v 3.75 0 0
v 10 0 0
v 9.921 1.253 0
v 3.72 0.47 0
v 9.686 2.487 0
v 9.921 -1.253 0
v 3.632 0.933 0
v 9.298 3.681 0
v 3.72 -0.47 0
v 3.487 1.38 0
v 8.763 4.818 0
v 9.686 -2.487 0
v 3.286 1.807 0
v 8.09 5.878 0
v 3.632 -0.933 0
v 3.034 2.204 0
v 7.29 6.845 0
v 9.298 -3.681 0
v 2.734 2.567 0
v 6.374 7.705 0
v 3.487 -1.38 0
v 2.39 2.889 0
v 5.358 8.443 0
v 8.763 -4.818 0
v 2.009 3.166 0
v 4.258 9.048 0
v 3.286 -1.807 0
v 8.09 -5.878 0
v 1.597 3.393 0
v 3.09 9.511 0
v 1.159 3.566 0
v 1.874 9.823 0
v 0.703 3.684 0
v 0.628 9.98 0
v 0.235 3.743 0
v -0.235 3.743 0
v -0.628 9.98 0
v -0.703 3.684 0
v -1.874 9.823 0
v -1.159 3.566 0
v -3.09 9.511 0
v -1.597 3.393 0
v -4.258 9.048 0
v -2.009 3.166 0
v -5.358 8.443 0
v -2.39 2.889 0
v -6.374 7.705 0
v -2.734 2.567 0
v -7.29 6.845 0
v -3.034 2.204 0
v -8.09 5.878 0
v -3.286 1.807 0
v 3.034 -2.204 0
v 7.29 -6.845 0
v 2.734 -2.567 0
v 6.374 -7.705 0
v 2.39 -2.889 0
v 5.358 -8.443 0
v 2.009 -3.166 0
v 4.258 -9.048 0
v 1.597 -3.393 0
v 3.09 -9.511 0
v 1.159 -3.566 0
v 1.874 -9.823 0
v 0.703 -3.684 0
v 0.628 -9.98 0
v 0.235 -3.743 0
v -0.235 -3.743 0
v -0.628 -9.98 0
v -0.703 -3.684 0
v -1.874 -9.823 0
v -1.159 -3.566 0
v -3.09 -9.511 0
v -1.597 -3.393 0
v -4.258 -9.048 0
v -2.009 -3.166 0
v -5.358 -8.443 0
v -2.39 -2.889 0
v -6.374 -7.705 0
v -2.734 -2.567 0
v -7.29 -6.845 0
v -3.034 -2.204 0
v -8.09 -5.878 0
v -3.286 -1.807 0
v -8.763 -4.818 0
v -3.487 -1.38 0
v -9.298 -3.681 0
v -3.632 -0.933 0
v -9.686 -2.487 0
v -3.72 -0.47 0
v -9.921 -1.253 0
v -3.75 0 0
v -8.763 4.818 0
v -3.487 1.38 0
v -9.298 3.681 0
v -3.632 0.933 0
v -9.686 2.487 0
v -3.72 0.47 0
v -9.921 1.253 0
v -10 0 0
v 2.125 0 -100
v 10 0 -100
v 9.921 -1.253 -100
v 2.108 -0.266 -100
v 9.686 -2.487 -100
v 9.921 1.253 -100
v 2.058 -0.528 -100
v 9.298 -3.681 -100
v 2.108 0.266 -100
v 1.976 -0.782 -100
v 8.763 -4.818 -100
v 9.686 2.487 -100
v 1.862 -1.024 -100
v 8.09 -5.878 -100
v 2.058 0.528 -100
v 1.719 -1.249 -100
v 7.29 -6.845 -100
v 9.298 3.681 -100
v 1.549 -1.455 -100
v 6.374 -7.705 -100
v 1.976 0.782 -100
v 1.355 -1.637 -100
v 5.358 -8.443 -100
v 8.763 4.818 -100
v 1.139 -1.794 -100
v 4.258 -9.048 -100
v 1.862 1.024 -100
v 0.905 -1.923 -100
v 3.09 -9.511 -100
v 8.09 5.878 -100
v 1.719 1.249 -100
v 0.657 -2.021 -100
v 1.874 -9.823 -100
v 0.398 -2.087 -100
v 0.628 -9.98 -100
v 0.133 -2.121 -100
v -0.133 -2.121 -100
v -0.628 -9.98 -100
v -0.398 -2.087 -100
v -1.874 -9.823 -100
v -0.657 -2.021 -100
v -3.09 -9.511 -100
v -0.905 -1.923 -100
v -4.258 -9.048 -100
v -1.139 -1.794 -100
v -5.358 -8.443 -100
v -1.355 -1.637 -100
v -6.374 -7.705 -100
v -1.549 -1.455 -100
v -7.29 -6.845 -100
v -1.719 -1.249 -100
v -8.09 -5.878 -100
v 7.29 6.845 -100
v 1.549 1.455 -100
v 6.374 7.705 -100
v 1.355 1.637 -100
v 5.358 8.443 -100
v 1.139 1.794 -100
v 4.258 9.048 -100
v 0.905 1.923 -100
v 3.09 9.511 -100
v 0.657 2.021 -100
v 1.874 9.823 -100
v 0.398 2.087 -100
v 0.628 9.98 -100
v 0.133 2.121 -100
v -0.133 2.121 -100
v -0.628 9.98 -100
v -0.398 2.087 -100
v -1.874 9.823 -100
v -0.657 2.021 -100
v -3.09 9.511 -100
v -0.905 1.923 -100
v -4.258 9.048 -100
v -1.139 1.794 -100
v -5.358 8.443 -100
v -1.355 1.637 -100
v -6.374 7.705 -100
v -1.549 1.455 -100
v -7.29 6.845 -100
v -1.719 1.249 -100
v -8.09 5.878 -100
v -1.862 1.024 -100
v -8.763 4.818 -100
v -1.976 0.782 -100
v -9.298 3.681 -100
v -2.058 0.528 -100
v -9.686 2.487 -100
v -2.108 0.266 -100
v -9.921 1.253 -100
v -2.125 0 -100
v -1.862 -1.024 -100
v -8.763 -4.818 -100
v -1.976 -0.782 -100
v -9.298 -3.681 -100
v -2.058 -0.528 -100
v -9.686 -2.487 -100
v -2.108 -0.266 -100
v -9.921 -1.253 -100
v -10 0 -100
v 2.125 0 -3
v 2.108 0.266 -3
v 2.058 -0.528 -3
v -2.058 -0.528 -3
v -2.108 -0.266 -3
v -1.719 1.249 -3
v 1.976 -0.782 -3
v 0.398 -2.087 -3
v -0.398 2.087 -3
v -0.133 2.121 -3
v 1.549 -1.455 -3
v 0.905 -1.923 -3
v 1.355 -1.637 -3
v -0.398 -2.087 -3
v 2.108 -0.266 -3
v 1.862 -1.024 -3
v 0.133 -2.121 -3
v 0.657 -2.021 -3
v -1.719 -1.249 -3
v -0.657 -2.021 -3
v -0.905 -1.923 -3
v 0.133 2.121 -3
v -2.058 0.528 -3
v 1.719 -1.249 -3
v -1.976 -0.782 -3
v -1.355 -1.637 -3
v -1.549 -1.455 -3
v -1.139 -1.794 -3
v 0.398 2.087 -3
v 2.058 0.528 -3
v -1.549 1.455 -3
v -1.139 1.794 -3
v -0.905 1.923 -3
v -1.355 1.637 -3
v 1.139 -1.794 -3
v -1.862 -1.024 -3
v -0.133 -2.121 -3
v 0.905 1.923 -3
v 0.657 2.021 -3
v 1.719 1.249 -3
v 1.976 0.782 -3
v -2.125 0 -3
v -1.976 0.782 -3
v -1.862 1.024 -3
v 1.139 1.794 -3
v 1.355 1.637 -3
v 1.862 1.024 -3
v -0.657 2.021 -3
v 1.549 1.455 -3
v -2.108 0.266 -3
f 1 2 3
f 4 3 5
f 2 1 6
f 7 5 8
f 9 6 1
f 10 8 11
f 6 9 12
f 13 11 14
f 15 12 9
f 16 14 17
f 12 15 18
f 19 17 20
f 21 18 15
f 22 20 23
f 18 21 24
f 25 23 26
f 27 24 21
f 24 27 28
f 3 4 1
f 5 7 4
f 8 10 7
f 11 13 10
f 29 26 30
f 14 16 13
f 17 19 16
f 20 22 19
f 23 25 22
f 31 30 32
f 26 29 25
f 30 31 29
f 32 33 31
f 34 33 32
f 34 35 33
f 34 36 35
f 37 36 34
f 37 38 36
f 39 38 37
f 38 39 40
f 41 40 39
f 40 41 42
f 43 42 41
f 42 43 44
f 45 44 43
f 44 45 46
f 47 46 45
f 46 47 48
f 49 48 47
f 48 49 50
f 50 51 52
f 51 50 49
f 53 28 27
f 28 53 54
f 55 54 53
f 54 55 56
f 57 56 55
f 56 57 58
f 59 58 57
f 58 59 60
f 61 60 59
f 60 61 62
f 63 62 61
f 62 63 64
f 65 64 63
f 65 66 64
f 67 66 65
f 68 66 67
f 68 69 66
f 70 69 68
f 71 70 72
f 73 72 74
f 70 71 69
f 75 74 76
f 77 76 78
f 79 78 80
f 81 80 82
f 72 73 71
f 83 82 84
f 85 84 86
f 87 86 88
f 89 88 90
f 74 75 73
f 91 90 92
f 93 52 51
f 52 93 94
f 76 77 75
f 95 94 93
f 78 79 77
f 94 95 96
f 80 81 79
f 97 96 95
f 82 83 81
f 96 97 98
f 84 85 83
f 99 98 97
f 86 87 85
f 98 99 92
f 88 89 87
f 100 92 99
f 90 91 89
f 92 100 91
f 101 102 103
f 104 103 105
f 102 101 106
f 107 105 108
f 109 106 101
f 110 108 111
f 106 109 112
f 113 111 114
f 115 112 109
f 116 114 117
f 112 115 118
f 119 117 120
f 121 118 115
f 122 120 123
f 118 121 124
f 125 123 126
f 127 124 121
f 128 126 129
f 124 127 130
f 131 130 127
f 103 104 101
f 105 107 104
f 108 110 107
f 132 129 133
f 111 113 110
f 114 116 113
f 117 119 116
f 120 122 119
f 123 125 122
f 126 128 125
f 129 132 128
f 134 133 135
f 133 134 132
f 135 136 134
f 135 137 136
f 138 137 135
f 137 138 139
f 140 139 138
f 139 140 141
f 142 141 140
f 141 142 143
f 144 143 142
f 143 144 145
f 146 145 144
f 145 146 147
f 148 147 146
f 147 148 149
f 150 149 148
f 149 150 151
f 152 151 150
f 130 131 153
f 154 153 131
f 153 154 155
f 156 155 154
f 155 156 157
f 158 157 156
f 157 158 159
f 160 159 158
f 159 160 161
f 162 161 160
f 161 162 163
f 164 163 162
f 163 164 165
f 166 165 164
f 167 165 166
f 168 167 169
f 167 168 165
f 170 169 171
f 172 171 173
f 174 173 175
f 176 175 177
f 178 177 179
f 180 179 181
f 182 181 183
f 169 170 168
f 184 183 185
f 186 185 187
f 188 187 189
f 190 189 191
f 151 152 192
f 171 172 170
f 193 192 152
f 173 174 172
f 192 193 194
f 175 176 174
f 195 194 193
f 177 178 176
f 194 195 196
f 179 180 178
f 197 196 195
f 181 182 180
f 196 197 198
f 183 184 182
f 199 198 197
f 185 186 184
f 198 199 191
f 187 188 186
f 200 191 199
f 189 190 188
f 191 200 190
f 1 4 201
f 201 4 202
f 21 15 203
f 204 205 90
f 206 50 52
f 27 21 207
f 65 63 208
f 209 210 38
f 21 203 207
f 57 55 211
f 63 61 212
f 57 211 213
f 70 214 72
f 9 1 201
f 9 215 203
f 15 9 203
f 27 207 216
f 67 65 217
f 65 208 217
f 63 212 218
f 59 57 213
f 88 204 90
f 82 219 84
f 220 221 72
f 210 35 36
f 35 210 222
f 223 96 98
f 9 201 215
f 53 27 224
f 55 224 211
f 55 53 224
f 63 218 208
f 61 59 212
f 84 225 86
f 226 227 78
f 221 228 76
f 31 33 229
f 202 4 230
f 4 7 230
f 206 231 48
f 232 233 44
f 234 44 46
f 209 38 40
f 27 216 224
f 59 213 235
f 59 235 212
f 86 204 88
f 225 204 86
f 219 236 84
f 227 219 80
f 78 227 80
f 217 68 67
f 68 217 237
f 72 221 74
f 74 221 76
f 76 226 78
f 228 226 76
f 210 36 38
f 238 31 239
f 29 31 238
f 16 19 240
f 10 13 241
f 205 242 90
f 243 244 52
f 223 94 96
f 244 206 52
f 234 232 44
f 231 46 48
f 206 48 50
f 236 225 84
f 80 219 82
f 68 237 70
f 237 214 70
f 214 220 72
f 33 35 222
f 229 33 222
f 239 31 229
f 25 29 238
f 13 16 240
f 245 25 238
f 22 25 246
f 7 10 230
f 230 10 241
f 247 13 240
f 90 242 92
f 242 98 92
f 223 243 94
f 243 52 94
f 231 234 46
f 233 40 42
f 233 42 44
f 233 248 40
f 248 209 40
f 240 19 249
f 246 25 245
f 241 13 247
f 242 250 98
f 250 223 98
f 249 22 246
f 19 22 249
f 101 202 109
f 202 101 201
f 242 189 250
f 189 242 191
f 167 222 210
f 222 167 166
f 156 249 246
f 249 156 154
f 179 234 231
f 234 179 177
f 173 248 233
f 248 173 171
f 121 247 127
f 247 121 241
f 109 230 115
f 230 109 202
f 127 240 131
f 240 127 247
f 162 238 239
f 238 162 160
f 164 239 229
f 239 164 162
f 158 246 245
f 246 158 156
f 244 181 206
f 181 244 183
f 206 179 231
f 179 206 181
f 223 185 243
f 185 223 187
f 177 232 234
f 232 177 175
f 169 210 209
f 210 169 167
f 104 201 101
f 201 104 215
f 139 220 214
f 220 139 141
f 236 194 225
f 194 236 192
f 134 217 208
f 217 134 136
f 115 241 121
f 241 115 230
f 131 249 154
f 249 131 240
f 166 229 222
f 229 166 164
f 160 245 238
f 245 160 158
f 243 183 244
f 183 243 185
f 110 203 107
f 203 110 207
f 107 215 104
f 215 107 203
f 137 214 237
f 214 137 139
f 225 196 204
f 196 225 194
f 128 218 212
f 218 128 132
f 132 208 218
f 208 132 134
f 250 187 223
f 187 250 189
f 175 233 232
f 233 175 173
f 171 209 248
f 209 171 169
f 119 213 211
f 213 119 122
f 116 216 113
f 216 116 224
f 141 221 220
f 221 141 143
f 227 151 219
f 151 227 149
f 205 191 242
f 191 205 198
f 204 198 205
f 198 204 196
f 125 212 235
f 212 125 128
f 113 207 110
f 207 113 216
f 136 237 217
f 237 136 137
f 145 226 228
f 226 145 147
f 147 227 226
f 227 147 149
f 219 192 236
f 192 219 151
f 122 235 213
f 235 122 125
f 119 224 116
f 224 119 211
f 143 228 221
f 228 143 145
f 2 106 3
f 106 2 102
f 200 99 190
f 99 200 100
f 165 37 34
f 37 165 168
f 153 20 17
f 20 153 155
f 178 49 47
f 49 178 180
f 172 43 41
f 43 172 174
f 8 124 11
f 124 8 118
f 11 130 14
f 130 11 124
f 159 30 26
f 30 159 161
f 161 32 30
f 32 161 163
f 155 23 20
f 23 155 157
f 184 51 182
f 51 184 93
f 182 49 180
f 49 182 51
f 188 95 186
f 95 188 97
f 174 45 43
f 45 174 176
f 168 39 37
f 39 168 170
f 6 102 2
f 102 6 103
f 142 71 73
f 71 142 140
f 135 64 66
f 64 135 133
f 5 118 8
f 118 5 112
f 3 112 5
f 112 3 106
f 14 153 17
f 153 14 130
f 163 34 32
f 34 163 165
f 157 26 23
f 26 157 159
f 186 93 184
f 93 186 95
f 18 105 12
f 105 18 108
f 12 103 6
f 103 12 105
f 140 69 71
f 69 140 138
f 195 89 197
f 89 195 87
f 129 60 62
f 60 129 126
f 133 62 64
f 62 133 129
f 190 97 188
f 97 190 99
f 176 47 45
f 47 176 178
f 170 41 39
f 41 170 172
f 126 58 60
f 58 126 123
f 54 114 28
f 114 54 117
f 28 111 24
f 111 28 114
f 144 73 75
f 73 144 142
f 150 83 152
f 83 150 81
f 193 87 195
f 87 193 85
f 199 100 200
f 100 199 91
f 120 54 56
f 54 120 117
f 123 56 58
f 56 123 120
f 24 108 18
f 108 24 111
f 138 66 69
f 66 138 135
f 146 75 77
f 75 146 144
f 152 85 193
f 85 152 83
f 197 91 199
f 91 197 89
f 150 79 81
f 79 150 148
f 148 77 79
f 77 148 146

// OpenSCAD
$fn = 50;


difference() {
	union() {
		translate(v = [0, 0, -100.0000000000]) {
			cylinder(h = 100, r = 10.0000000000);
		}
		cylinder(h = 0, r = 20.0000000000);
	}
	union() {
		translate(v = [0, 0, 0]) {
			rotate(a = [0, 0, 0]) {
				difference() {
					union() {
						#translate(v = [0, 0, -100.0000000000]) {
							cylinder(h = 100, r = 2.0000000000);
						}
						#translate(v = [0, 0, -3]) {
							cylinder(h = 3, r1 = 2.1250000000, r2 = 3.7500000000);
						}
						#translate(v = [0, 0, -100.0000000000]) {
							cylinder(h = 100, r = 2.1250000000);
						}
						#translate(v = [0, 0, -100.0000000000]) {
							cylinder(h = 100, r = 2.0000000000);
						}
					}
					union();
				}
			}
		}
	}
}
